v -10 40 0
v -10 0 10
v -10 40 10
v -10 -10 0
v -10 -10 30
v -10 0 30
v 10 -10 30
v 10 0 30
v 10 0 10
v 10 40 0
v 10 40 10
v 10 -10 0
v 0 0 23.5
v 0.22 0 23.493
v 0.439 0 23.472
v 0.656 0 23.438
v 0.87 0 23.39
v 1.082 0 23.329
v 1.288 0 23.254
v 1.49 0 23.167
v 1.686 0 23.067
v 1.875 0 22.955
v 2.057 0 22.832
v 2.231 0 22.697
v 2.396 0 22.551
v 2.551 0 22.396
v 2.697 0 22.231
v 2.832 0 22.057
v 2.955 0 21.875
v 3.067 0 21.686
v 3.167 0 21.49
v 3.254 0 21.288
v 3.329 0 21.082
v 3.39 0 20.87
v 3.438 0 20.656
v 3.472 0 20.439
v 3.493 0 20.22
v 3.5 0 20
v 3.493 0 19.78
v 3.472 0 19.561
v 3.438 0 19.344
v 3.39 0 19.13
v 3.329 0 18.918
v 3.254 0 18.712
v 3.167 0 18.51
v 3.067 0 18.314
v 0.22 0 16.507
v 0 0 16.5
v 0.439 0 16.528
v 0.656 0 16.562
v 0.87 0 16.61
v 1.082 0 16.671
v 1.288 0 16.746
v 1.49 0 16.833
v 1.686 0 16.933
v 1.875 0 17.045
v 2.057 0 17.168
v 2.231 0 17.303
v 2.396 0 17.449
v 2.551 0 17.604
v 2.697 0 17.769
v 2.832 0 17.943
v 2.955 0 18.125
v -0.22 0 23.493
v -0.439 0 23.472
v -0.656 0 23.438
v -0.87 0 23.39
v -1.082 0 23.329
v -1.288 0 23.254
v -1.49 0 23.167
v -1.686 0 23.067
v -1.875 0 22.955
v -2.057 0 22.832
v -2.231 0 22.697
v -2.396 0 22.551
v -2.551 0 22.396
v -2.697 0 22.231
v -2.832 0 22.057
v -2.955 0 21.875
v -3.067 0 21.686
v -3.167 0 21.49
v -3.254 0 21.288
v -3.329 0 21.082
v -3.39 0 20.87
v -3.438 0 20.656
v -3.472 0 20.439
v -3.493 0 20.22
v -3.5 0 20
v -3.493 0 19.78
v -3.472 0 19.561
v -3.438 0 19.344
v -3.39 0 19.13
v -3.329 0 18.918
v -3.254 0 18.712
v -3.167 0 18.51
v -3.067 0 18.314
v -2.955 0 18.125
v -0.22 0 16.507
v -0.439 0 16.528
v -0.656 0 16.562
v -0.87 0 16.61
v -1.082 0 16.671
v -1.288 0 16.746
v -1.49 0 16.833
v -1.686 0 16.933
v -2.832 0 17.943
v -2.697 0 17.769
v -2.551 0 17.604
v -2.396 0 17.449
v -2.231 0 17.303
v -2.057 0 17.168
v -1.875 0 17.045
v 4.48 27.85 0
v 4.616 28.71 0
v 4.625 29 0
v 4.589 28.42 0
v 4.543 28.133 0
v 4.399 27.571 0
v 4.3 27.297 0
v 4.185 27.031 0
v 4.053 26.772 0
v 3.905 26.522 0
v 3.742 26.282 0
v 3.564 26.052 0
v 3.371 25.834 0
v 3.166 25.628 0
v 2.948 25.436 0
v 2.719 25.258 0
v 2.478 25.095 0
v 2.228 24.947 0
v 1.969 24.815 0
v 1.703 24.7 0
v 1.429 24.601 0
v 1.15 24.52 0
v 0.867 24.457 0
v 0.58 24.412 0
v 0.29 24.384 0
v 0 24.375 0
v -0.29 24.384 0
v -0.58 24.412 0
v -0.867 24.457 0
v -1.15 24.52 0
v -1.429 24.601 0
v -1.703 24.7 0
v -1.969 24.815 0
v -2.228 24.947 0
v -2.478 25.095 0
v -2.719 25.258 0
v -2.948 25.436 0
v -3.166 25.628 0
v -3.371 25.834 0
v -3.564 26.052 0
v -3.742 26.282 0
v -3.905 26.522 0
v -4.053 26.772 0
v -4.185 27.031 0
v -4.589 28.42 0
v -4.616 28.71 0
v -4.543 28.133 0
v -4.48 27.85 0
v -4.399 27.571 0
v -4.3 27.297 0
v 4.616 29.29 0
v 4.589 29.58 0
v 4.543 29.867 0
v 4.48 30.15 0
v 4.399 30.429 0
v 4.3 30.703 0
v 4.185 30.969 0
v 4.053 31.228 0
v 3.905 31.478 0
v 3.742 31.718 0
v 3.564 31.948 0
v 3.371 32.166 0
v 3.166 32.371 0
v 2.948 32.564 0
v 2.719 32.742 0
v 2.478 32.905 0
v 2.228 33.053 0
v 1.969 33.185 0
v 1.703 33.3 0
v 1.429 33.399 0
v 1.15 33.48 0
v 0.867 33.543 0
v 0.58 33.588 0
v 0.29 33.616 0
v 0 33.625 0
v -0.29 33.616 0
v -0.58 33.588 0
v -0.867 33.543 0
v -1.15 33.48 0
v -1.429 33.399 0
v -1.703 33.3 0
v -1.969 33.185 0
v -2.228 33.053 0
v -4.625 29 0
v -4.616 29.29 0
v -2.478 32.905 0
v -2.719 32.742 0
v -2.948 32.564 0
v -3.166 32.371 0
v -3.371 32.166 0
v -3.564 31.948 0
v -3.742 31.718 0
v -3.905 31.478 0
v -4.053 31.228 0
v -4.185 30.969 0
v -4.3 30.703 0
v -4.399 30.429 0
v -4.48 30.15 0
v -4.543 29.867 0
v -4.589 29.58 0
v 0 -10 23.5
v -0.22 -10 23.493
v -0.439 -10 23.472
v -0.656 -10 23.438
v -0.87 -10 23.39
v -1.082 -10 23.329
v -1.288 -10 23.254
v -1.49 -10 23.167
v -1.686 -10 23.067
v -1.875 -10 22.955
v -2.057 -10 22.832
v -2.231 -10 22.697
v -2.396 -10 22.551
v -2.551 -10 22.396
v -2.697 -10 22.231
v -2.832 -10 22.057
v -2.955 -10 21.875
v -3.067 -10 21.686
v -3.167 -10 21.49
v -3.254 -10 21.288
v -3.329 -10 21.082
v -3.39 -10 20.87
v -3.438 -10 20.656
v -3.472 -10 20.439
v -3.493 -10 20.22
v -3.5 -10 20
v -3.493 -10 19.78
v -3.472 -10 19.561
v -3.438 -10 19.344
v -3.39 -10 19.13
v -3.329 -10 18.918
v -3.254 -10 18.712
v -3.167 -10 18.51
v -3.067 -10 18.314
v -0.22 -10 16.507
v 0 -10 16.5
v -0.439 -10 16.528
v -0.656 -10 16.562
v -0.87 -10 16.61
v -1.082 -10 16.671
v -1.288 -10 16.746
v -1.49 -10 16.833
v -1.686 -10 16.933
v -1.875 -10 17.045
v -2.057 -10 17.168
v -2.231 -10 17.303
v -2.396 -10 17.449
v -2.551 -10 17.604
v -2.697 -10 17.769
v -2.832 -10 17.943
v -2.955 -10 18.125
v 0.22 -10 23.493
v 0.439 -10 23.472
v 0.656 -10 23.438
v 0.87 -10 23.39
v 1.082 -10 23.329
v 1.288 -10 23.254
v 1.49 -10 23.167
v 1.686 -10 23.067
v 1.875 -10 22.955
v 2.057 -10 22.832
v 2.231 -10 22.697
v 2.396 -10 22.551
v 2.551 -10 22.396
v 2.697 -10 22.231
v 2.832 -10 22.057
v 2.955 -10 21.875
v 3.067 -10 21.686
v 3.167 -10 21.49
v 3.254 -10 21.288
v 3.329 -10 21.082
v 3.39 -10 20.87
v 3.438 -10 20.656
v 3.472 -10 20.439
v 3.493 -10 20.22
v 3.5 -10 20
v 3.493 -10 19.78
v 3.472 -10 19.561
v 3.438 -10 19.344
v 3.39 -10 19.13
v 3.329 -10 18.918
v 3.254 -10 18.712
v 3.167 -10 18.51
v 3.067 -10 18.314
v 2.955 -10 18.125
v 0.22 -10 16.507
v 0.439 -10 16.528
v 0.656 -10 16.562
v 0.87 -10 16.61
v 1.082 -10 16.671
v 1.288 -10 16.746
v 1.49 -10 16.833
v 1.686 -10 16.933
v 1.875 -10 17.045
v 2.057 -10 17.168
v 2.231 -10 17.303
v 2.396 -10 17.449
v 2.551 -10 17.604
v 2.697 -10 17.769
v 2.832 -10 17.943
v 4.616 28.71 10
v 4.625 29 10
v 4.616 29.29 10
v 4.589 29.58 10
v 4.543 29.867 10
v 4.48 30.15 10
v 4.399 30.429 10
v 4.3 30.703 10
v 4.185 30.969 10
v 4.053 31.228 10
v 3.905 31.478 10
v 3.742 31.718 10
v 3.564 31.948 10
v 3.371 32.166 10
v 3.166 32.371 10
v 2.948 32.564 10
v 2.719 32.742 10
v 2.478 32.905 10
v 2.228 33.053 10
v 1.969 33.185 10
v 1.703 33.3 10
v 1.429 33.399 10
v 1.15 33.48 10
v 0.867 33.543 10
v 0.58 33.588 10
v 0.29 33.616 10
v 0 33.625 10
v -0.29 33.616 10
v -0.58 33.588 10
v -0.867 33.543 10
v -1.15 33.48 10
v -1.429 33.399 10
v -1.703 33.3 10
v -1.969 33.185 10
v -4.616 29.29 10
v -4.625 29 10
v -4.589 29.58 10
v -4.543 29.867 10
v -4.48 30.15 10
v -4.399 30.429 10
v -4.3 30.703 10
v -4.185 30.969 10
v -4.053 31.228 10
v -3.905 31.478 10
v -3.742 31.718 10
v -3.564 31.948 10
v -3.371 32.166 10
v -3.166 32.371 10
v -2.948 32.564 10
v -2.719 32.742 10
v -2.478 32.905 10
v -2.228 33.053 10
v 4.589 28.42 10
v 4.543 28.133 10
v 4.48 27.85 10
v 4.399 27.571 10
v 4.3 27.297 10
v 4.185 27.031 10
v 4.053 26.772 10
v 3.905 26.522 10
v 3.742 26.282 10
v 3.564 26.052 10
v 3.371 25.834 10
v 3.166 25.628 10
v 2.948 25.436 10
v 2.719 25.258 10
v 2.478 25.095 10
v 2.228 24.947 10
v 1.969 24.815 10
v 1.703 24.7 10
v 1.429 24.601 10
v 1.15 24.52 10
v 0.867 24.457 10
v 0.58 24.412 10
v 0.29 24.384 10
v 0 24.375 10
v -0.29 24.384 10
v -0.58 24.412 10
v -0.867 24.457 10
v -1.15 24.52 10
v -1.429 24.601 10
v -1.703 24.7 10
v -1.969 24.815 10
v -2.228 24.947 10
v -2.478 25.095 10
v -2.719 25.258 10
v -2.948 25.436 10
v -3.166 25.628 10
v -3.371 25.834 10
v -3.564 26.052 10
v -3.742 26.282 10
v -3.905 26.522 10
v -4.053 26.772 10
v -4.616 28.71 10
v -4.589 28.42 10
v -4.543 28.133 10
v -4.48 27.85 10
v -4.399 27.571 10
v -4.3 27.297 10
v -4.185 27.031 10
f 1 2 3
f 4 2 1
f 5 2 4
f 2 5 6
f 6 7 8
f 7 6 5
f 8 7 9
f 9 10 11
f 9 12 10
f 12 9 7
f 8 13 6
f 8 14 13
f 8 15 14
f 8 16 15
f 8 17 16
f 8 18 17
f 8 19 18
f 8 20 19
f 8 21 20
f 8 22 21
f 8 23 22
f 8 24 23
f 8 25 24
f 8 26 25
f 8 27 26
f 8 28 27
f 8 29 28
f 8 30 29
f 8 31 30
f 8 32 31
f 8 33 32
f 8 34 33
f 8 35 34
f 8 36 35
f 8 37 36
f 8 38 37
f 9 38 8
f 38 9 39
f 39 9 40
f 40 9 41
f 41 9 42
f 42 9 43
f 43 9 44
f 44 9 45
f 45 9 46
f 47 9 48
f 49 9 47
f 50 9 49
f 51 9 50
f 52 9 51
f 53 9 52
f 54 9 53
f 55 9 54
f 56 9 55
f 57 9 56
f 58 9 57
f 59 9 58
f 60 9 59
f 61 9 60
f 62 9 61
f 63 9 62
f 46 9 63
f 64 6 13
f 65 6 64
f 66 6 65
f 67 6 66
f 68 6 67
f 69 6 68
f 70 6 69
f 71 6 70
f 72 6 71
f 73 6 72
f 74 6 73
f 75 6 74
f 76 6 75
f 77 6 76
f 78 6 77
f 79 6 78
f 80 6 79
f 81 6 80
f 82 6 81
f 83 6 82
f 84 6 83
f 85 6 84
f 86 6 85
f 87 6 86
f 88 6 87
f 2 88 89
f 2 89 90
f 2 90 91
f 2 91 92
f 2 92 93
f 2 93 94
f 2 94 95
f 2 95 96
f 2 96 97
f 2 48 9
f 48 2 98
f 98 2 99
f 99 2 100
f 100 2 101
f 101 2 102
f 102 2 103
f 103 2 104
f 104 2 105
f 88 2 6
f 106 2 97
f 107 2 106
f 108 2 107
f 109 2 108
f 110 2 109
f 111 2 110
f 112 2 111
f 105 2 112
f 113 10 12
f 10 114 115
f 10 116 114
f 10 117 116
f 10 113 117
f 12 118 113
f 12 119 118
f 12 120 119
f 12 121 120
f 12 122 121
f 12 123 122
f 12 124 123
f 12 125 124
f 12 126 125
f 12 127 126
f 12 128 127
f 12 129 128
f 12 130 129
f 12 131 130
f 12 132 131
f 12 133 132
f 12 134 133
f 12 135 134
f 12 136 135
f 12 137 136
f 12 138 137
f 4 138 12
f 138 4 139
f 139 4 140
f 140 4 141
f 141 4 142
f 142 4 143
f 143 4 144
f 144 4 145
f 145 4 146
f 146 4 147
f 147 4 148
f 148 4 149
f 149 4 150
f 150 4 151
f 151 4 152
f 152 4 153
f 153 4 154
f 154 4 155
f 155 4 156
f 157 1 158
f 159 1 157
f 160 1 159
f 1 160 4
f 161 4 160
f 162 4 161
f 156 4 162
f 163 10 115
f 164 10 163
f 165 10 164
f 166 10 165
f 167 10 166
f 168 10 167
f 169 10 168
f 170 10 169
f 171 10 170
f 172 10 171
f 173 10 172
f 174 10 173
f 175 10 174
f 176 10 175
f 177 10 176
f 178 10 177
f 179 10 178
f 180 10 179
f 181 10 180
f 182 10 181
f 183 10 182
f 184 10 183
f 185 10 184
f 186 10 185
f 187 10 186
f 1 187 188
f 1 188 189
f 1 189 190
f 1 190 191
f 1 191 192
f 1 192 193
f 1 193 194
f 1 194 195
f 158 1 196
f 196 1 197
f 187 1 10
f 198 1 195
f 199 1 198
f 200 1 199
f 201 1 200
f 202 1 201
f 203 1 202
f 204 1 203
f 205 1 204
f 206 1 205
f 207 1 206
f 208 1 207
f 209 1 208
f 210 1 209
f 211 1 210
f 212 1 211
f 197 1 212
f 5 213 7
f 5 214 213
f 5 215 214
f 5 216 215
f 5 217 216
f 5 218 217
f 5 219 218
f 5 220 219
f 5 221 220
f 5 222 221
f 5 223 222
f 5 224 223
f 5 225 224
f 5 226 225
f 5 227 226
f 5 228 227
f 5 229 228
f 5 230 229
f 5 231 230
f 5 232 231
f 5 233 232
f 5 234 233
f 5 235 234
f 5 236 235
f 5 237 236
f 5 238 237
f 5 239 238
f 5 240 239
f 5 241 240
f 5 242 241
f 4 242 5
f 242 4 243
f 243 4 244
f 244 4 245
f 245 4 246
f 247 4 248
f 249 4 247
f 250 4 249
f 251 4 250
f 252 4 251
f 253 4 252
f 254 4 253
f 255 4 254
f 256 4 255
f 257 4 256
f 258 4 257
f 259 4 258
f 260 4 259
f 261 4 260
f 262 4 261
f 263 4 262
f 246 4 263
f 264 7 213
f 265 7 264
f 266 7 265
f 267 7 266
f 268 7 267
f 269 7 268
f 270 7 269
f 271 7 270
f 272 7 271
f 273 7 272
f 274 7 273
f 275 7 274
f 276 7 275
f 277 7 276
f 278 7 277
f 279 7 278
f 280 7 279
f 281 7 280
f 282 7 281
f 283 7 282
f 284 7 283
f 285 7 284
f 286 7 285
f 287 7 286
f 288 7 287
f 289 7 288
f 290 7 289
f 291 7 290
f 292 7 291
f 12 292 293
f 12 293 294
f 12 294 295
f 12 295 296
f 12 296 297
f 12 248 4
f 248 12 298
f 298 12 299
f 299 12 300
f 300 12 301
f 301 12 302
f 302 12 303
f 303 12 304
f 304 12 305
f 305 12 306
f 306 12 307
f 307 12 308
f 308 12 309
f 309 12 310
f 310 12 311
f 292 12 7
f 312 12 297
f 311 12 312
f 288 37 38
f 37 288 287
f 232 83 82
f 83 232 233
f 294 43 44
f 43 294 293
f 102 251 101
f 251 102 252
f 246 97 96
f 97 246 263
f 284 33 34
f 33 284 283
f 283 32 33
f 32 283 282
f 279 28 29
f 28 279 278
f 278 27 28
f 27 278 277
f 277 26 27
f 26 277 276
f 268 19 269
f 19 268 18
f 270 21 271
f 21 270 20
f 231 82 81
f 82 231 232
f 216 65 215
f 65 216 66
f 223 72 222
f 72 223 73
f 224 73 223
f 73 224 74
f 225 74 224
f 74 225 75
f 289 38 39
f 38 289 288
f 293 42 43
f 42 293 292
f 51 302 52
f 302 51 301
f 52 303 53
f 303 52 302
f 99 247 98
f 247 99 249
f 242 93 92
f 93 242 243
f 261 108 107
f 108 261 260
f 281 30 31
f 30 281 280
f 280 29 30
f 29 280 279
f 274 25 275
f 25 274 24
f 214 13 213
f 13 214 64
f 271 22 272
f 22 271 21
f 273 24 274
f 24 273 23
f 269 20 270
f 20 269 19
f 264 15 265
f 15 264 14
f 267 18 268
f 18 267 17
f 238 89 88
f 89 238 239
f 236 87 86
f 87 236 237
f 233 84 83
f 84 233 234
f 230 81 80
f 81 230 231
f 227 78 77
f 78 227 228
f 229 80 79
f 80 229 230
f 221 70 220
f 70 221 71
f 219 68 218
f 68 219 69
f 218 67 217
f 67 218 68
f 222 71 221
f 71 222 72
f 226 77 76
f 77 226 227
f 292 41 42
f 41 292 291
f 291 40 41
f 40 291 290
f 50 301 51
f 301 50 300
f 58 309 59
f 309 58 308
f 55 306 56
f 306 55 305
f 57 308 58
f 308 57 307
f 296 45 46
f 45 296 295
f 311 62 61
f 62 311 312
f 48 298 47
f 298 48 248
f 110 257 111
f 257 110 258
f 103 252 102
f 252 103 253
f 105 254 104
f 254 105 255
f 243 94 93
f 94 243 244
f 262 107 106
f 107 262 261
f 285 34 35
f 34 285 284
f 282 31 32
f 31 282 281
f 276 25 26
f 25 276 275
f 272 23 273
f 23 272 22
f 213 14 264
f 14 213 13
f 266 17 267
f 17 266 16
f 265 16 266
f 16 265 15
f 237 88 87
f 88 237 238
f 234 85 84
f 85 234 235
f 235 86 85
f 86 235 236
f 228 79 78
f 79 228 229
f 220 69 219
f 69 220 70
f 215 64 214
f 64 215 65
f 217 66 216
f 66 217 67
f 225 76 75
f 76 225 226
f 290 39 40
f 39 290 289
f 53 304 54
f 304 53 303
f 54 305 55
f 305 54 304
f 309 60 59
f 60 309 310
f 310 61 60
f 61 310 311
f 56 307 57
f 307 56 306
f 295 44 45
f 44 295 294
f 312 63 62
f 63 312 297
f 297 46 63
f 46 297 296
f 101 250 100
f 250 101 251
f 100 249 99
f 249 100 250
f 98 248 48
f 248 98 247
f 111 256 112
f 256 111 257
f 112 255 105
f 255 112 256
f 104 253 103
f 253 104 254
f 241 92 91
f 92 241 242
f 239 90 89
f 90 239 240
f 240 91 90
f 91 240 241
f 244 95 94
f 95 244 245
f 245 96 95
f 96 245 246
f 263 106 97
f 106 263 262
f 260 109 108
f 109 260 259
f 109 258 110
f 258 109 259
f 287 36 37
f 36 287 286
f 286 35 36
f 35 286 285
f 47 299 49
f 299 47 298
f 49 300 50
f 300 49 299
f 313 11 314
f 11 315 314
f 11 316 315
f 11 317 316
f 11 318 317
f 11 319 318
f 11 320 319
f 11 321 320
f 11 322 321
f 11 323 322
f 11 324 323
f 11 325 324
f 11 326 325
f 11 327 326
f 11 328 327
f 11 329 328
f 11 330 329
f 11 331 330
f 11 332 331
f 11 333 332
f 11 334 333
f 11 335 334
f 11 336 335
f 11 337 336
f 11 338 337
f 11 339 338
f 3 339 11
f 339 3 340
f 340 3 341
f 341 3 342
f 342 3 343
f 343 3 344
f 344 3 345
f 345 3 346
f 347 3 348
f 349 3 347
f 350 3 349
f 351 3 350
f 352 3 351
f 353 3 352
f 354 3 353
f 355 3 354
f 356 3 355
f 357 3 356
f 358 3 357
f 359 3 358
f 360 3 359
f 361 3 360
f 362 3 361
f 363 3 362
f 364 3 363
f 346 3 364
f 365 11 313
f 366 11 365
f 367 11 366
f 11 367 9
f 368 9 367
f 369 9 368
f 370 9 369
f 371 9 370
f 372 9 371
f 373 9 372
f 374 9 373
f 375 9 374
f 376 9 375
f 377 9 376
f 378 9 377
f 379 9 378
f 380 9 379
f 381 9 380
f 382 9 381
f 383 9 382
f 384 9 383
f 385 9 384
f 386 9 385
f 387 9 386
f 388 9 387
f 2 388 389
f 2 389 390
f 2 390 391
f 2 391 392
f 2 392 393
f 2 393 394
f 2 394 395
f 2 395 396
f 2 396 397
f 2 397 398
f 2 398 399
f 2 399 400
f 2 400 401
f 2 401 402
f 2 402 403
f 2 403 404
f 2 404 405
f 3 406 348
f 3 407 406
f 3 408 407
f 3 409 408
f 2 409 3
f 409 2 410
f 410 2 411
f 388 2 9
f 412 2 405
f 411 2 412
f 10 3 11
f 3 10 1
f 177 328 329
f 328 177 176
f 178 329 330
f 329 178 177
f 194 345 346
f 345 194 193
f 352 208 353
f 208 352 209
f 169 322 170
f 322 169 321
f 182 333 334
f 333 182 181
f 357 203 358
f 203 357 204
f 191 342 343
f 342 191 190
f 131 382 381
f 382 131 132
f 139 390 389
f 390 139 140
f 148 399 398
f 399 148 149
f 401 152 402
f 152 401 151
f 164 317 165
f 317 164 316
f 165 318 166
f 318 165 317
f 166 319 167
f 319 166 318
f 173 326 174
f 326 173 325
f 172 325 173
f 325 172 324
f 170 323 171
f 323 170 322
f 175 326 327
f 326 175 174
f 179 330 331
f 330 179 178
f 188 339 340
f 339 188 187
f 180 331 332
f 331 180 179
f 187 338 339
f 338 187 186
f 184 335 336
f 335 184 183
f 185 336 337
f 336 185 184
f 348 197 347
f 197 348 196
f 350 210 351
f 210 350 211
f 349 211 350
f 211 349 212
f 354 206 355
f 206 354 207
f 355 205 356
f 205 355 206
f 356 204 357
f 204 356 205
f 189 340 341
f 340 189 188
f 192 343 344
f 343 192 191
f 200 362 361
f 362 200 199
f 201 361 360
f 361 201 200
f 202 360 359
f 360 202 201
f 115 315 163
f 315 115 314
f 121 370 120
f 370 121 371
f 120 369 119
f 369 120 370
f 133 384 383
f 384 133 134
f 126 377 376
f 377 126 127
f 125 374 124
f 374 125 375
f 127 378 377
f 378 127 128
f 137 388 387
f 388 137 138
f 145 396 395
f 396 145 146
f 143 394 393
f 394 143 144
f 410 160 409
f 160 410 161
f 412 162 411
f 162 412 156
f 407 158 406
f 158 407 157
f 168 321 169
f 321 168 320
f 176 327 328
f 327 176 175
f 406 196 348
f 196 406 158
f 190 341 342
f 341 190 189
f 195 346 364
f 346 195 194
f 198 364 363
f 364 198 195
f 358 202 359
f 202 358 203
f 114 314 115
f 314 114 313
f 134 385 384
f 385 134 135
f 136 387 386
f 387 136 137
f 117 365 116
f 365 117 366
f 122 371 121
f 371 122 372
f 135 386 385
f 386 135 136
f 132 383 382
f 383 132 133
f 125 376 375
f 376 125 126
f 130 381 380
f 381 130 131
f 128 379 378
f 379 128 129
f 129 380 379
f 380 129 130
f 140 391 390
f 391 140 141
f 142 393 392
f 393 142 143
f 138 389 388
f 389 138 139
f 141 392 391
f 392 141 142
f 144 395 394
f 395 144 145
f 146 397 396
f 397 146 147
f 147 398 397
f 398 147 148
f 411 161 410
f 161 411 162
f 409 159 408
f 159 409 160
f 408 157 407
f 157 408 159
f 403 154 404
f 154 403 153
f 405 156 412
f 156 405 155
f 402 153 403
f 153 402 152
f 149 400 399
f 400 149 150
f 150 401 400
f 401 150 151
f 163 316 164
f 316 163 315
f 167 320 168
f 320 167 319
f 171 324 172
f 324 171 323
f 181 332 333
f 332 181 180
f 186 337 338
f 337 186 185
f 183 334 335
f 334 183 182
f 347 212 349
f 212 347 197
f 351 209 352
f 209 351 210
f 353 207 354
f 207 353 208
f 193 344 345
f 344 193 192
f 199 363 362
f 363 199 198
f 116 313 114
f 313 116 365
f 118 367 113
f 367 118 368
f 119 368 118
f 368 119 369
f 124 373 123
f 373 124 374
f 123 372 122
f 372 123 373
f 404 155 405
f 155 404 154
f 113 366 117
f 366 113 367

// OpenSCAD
/*
	This is a bracket to stabilize a 8 mm linear rail.
*/
union(){
    
difference(){
    translate([-10,0,0]){
cube([20,40,10]);
    }
    translate([0,29,-5]){
    cylinder(30,d=9.25,true,$fn=100);
    }
    
}

   
    difference(){
        translate([-10,-10,0]){ 
        cube([20,10,30]);
//      rotate([90,0,0]){
//          translate([0,8,-10]){
//        cylinder(30,d=7,true,$fn=100);
//          }
//        }
        }
      rotate([90,0,0]){
          translate([0,20,-5]){
        cylinder(30,d=7,$fn=100);
          }
        }
    }

}
